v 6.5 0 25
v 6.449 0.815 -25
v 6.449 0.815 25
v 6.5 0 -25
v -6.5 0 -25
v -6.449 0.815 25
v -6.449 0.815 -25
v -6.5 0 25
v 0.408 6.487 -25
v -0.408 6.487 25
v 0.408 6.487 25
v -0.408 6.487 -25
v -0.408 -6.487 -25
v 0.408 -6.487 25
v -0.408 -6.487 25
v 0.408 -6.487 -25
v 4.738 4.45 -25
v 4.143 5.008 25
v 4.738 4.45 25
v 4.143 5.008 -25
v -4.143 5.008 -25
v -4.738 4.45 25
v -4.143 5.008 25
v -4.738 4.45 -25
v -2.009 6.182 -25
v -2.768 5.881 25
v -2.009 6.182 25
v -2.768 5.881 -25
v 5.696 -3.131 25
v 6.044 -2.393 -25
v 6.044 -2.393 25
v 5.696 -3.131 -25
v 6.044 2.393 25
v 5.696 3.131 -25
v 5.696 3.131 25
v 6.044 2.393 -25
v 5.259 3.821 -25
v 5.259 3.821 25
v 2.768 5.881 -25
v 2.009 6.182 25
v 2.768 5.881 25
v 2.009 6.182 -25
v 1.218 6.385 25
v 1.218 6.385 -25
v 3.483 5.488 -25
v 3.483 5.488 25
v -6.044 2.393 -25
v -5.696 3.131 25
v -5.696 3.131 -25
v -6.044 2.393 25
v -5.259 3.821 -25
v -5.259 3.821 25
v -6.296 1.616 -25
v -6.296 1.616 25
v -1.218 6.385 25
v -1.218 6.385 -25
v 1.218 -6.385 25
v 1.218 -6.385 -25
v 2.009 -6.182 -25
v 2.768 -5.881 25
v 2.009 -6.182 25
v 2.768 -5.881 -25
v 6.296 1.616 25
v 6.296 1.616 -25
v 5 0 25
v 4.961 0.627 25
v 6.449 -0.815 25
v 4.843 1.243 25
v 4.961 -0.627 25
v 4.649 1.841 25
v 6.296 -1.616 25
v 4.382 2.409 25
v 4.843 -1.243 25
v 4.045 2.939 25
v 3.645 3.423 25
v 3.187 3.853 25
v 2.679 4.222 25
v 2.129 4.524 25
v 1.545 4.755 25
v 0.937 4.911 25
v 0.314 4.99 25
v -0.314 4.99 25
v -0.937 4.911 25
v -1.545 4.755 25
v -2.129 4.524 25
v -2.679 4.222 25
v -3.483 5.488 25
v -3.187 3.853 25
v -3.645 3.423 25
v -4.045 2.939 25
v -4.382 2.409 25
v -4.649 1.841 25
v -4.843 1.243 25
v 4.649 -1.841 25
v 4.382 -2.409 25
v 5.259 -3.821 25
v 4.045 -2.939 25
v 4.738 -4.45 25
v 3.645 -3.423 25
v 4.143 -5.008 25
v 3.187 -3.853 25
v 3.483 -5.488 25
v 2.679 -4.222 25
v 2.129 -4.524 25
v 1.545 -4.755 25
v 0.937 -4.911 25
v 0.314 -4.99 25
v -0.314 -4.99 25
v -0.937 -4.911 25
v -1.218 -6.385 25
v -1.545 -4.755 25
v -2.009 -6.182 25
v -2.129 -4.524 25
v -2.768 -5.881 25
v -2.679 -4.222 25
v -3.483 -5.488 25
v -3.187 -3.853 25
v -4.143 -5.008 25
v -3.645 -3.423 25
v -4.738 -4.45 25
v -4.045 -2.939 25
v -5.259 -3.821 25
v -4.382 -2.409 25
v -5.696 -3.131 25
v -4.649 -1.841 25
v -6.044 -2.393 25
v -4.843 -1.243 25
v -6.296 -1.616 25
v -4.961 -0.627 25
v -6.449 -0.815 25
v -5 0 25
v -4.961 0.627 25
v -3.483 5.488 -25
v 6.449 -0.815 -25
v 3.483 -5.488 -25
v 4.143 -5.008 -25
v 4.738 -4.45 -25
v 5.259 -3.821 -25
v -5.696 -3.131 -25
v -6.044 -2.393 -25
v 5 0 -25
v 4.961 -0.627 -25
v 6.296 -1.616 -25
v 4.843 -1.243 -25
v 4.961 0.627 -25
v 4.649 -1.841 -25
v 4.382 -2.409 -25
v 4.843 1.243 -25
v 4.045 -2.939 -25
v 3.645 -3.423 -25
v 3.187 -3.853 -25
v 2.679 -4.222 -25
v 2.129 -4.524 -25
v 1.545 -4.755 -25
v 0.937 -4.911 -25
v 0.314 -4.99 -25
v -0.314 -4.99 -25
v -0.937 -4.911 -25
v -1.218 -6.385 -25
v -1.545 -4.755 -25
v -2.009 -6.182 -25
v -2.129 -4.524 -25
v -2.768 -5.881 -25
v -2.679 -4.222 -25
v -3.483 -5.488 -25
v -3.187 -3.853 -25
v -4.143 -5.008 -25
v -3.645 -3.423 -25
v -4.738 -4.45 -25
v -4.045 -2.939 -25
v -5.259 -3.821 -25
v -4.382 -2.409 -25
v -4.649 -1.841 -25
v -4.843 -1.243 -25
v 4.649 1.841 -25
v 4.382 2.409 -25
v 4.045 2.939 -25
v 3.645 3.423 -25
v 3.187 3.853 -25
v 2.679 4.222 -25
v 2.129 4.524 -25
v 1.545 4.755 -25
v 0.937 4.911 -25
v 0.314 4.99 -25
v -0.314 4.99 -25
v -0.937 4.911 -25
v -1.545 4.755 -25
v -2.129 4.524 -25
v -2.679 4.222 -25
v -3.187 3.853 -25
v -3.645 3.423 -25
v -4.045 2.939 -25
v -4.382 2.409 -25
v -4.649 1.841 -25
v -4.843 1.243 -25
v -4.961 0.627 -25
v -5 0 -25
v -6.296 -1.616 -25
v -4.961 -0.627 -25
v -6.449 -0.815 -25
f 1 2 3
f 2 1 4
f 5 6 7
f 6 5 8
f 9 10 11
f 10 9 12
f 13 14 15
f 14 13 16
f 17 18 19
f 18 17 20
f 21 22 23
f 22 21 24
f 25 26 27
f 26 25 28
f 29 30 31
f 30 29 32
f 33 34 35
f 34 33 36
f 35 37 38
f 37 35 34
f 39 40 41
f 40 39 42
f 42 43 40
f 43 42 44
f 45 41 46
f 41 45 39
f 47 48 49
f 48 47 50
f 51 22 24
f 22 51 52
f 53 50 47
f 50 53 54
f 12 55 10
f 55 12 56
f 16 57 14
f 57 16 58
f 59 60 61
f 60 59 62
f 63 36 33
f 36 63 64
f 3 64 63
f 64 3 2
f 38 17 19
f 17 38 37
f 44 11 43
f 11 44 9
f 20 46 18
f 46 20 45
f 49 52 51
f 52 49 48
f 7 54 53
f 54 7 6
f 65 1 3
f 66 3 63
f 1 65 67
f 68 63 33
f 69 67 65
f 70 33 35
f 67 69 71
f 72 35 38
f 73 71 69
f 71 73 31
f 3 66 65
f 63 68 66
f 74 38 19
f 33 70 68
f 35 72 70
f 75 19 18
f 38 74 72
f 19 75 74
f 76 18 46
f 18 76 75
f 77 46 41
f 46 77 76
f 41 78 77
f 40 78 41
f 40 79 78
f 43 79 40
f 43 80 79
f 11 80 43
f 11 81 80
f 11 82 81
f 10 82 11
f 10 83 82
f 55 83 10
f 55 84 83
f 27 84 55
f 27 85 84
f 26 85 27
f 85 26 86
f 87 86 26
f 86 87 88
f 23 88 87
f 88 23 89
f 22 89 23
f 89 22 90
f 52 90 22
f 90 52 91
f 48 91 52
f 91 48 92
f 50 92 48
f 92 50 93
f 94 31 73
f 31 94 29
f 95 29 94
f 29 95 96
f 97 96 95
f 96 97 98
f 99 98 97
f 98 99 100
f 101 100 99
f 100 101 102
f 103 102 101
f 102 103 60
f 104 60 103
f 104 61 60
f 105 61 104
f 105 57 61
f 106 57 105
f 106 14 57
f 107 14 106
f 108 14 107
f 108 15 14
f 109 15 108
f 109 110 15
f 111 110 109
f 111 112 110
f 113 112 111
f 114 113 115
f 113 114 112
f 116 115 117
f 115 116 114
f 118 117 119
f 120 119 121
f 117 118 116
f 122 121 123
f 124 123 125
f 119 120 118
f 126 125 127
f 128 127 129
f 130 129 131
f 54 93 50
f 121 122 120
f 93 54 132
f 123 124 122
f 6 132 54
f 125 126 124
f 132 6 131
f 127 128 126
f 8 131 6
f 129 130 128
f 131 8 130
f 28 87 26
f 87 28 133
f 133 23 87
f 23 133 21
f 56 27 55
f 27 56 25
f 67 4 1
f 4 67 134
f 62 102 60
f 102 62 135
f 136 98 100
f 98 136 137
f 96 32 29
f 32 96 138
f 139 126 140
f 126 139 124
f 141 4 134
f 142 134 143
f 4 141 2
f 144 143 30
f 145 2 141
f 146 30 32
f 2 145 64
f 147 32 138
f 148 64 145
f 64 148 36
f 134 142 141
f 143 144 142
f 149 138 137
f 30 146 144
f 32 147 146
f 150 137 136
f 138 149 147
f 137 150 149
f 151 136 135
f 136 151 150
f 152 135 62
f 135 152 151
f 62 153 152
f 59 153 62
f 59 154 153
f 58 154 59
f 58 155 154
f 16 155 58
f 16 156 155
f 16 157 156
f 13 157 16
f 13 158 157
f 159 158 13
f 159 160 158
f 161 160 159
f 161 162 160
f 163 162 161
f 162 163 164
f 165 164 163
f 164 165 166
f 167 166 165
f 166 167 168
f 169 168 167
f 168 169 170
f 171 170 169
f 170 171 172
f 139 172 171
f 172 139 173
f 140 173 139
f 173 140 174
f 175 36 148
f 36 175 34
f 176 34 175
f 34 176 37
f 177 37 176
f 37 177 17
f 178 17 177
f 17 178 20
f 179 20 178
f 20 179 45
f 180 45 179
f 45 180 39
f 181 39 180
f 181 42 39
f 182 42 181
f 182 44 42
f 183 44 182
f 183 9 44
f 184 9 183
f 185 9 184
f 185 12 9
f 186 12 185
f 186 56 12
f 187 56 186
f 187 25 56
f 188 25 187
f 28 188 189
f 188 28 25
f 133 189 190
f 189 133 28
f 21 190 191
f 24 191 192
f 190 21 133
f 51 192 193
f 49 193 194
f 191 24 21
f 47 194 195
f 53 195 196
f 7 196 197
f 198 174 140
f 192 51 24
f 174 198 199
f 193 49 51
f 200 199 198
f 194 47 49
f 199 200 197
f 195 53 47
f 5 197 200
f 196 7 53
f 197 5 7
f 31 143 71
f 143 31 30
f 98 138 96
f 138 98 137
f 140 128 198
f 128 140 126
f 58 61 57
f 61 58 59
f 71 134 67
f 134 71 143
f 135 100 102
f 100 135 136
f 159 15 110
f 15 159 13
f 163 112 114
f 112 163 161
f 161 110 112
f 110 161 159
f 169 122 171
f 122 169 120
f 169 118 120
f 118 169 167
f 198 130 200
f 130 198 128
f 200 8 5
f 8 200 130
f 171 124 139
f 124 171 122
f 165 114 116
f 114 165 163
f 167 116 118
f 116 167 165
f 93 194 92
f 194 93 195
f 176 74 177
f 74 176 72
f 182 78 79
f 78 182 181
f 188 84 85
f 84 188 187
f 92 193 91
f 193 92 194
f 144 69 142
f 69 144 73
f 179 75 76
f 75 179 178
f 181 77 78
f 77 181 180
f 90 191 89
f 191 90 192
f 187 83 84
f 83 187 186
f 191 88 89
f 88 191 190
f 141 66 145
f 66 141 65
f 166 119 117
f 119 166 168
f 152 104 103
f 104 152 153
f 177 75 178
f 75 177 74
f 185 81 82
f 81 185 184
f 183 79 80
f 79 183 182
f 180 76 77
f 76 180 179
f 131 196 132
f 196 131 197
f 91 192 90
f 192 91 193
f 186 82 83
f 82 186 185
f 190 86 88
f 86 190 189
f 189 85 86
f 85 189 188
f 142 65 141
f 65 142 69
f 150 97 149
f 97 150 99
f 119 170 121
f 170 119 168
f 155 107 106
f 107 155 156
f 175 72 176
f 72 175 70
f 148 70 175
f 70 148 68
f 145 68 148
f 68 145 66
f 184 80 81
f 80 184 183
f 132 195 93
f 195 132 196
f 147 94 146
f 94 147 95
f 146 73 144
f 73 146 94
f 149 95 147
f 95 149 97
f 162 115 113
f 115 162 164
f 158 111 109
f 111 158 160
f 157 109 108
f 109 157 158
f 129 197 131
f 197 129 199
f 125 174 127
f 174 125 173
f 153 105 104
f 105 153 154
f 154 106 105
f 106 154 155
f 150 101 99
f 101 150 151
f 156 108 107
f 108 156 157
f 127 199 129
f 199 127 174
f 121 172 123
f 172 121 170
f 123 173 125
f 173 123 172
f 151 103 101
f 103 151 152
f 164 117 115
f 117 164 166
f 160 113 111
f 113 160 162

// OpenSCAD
$fn = 50;


difference() {
	union() {
		translate(v = [0, 0, -25.0000000000]) {
			cylinder(h = 50, r = 6.5000000000);
		}
	}
	union() {
		translate(v = [0, 0, -100.0000000000]) {
			cylinder(h = 200, r = 5.0000000000);
		}
	}
}
